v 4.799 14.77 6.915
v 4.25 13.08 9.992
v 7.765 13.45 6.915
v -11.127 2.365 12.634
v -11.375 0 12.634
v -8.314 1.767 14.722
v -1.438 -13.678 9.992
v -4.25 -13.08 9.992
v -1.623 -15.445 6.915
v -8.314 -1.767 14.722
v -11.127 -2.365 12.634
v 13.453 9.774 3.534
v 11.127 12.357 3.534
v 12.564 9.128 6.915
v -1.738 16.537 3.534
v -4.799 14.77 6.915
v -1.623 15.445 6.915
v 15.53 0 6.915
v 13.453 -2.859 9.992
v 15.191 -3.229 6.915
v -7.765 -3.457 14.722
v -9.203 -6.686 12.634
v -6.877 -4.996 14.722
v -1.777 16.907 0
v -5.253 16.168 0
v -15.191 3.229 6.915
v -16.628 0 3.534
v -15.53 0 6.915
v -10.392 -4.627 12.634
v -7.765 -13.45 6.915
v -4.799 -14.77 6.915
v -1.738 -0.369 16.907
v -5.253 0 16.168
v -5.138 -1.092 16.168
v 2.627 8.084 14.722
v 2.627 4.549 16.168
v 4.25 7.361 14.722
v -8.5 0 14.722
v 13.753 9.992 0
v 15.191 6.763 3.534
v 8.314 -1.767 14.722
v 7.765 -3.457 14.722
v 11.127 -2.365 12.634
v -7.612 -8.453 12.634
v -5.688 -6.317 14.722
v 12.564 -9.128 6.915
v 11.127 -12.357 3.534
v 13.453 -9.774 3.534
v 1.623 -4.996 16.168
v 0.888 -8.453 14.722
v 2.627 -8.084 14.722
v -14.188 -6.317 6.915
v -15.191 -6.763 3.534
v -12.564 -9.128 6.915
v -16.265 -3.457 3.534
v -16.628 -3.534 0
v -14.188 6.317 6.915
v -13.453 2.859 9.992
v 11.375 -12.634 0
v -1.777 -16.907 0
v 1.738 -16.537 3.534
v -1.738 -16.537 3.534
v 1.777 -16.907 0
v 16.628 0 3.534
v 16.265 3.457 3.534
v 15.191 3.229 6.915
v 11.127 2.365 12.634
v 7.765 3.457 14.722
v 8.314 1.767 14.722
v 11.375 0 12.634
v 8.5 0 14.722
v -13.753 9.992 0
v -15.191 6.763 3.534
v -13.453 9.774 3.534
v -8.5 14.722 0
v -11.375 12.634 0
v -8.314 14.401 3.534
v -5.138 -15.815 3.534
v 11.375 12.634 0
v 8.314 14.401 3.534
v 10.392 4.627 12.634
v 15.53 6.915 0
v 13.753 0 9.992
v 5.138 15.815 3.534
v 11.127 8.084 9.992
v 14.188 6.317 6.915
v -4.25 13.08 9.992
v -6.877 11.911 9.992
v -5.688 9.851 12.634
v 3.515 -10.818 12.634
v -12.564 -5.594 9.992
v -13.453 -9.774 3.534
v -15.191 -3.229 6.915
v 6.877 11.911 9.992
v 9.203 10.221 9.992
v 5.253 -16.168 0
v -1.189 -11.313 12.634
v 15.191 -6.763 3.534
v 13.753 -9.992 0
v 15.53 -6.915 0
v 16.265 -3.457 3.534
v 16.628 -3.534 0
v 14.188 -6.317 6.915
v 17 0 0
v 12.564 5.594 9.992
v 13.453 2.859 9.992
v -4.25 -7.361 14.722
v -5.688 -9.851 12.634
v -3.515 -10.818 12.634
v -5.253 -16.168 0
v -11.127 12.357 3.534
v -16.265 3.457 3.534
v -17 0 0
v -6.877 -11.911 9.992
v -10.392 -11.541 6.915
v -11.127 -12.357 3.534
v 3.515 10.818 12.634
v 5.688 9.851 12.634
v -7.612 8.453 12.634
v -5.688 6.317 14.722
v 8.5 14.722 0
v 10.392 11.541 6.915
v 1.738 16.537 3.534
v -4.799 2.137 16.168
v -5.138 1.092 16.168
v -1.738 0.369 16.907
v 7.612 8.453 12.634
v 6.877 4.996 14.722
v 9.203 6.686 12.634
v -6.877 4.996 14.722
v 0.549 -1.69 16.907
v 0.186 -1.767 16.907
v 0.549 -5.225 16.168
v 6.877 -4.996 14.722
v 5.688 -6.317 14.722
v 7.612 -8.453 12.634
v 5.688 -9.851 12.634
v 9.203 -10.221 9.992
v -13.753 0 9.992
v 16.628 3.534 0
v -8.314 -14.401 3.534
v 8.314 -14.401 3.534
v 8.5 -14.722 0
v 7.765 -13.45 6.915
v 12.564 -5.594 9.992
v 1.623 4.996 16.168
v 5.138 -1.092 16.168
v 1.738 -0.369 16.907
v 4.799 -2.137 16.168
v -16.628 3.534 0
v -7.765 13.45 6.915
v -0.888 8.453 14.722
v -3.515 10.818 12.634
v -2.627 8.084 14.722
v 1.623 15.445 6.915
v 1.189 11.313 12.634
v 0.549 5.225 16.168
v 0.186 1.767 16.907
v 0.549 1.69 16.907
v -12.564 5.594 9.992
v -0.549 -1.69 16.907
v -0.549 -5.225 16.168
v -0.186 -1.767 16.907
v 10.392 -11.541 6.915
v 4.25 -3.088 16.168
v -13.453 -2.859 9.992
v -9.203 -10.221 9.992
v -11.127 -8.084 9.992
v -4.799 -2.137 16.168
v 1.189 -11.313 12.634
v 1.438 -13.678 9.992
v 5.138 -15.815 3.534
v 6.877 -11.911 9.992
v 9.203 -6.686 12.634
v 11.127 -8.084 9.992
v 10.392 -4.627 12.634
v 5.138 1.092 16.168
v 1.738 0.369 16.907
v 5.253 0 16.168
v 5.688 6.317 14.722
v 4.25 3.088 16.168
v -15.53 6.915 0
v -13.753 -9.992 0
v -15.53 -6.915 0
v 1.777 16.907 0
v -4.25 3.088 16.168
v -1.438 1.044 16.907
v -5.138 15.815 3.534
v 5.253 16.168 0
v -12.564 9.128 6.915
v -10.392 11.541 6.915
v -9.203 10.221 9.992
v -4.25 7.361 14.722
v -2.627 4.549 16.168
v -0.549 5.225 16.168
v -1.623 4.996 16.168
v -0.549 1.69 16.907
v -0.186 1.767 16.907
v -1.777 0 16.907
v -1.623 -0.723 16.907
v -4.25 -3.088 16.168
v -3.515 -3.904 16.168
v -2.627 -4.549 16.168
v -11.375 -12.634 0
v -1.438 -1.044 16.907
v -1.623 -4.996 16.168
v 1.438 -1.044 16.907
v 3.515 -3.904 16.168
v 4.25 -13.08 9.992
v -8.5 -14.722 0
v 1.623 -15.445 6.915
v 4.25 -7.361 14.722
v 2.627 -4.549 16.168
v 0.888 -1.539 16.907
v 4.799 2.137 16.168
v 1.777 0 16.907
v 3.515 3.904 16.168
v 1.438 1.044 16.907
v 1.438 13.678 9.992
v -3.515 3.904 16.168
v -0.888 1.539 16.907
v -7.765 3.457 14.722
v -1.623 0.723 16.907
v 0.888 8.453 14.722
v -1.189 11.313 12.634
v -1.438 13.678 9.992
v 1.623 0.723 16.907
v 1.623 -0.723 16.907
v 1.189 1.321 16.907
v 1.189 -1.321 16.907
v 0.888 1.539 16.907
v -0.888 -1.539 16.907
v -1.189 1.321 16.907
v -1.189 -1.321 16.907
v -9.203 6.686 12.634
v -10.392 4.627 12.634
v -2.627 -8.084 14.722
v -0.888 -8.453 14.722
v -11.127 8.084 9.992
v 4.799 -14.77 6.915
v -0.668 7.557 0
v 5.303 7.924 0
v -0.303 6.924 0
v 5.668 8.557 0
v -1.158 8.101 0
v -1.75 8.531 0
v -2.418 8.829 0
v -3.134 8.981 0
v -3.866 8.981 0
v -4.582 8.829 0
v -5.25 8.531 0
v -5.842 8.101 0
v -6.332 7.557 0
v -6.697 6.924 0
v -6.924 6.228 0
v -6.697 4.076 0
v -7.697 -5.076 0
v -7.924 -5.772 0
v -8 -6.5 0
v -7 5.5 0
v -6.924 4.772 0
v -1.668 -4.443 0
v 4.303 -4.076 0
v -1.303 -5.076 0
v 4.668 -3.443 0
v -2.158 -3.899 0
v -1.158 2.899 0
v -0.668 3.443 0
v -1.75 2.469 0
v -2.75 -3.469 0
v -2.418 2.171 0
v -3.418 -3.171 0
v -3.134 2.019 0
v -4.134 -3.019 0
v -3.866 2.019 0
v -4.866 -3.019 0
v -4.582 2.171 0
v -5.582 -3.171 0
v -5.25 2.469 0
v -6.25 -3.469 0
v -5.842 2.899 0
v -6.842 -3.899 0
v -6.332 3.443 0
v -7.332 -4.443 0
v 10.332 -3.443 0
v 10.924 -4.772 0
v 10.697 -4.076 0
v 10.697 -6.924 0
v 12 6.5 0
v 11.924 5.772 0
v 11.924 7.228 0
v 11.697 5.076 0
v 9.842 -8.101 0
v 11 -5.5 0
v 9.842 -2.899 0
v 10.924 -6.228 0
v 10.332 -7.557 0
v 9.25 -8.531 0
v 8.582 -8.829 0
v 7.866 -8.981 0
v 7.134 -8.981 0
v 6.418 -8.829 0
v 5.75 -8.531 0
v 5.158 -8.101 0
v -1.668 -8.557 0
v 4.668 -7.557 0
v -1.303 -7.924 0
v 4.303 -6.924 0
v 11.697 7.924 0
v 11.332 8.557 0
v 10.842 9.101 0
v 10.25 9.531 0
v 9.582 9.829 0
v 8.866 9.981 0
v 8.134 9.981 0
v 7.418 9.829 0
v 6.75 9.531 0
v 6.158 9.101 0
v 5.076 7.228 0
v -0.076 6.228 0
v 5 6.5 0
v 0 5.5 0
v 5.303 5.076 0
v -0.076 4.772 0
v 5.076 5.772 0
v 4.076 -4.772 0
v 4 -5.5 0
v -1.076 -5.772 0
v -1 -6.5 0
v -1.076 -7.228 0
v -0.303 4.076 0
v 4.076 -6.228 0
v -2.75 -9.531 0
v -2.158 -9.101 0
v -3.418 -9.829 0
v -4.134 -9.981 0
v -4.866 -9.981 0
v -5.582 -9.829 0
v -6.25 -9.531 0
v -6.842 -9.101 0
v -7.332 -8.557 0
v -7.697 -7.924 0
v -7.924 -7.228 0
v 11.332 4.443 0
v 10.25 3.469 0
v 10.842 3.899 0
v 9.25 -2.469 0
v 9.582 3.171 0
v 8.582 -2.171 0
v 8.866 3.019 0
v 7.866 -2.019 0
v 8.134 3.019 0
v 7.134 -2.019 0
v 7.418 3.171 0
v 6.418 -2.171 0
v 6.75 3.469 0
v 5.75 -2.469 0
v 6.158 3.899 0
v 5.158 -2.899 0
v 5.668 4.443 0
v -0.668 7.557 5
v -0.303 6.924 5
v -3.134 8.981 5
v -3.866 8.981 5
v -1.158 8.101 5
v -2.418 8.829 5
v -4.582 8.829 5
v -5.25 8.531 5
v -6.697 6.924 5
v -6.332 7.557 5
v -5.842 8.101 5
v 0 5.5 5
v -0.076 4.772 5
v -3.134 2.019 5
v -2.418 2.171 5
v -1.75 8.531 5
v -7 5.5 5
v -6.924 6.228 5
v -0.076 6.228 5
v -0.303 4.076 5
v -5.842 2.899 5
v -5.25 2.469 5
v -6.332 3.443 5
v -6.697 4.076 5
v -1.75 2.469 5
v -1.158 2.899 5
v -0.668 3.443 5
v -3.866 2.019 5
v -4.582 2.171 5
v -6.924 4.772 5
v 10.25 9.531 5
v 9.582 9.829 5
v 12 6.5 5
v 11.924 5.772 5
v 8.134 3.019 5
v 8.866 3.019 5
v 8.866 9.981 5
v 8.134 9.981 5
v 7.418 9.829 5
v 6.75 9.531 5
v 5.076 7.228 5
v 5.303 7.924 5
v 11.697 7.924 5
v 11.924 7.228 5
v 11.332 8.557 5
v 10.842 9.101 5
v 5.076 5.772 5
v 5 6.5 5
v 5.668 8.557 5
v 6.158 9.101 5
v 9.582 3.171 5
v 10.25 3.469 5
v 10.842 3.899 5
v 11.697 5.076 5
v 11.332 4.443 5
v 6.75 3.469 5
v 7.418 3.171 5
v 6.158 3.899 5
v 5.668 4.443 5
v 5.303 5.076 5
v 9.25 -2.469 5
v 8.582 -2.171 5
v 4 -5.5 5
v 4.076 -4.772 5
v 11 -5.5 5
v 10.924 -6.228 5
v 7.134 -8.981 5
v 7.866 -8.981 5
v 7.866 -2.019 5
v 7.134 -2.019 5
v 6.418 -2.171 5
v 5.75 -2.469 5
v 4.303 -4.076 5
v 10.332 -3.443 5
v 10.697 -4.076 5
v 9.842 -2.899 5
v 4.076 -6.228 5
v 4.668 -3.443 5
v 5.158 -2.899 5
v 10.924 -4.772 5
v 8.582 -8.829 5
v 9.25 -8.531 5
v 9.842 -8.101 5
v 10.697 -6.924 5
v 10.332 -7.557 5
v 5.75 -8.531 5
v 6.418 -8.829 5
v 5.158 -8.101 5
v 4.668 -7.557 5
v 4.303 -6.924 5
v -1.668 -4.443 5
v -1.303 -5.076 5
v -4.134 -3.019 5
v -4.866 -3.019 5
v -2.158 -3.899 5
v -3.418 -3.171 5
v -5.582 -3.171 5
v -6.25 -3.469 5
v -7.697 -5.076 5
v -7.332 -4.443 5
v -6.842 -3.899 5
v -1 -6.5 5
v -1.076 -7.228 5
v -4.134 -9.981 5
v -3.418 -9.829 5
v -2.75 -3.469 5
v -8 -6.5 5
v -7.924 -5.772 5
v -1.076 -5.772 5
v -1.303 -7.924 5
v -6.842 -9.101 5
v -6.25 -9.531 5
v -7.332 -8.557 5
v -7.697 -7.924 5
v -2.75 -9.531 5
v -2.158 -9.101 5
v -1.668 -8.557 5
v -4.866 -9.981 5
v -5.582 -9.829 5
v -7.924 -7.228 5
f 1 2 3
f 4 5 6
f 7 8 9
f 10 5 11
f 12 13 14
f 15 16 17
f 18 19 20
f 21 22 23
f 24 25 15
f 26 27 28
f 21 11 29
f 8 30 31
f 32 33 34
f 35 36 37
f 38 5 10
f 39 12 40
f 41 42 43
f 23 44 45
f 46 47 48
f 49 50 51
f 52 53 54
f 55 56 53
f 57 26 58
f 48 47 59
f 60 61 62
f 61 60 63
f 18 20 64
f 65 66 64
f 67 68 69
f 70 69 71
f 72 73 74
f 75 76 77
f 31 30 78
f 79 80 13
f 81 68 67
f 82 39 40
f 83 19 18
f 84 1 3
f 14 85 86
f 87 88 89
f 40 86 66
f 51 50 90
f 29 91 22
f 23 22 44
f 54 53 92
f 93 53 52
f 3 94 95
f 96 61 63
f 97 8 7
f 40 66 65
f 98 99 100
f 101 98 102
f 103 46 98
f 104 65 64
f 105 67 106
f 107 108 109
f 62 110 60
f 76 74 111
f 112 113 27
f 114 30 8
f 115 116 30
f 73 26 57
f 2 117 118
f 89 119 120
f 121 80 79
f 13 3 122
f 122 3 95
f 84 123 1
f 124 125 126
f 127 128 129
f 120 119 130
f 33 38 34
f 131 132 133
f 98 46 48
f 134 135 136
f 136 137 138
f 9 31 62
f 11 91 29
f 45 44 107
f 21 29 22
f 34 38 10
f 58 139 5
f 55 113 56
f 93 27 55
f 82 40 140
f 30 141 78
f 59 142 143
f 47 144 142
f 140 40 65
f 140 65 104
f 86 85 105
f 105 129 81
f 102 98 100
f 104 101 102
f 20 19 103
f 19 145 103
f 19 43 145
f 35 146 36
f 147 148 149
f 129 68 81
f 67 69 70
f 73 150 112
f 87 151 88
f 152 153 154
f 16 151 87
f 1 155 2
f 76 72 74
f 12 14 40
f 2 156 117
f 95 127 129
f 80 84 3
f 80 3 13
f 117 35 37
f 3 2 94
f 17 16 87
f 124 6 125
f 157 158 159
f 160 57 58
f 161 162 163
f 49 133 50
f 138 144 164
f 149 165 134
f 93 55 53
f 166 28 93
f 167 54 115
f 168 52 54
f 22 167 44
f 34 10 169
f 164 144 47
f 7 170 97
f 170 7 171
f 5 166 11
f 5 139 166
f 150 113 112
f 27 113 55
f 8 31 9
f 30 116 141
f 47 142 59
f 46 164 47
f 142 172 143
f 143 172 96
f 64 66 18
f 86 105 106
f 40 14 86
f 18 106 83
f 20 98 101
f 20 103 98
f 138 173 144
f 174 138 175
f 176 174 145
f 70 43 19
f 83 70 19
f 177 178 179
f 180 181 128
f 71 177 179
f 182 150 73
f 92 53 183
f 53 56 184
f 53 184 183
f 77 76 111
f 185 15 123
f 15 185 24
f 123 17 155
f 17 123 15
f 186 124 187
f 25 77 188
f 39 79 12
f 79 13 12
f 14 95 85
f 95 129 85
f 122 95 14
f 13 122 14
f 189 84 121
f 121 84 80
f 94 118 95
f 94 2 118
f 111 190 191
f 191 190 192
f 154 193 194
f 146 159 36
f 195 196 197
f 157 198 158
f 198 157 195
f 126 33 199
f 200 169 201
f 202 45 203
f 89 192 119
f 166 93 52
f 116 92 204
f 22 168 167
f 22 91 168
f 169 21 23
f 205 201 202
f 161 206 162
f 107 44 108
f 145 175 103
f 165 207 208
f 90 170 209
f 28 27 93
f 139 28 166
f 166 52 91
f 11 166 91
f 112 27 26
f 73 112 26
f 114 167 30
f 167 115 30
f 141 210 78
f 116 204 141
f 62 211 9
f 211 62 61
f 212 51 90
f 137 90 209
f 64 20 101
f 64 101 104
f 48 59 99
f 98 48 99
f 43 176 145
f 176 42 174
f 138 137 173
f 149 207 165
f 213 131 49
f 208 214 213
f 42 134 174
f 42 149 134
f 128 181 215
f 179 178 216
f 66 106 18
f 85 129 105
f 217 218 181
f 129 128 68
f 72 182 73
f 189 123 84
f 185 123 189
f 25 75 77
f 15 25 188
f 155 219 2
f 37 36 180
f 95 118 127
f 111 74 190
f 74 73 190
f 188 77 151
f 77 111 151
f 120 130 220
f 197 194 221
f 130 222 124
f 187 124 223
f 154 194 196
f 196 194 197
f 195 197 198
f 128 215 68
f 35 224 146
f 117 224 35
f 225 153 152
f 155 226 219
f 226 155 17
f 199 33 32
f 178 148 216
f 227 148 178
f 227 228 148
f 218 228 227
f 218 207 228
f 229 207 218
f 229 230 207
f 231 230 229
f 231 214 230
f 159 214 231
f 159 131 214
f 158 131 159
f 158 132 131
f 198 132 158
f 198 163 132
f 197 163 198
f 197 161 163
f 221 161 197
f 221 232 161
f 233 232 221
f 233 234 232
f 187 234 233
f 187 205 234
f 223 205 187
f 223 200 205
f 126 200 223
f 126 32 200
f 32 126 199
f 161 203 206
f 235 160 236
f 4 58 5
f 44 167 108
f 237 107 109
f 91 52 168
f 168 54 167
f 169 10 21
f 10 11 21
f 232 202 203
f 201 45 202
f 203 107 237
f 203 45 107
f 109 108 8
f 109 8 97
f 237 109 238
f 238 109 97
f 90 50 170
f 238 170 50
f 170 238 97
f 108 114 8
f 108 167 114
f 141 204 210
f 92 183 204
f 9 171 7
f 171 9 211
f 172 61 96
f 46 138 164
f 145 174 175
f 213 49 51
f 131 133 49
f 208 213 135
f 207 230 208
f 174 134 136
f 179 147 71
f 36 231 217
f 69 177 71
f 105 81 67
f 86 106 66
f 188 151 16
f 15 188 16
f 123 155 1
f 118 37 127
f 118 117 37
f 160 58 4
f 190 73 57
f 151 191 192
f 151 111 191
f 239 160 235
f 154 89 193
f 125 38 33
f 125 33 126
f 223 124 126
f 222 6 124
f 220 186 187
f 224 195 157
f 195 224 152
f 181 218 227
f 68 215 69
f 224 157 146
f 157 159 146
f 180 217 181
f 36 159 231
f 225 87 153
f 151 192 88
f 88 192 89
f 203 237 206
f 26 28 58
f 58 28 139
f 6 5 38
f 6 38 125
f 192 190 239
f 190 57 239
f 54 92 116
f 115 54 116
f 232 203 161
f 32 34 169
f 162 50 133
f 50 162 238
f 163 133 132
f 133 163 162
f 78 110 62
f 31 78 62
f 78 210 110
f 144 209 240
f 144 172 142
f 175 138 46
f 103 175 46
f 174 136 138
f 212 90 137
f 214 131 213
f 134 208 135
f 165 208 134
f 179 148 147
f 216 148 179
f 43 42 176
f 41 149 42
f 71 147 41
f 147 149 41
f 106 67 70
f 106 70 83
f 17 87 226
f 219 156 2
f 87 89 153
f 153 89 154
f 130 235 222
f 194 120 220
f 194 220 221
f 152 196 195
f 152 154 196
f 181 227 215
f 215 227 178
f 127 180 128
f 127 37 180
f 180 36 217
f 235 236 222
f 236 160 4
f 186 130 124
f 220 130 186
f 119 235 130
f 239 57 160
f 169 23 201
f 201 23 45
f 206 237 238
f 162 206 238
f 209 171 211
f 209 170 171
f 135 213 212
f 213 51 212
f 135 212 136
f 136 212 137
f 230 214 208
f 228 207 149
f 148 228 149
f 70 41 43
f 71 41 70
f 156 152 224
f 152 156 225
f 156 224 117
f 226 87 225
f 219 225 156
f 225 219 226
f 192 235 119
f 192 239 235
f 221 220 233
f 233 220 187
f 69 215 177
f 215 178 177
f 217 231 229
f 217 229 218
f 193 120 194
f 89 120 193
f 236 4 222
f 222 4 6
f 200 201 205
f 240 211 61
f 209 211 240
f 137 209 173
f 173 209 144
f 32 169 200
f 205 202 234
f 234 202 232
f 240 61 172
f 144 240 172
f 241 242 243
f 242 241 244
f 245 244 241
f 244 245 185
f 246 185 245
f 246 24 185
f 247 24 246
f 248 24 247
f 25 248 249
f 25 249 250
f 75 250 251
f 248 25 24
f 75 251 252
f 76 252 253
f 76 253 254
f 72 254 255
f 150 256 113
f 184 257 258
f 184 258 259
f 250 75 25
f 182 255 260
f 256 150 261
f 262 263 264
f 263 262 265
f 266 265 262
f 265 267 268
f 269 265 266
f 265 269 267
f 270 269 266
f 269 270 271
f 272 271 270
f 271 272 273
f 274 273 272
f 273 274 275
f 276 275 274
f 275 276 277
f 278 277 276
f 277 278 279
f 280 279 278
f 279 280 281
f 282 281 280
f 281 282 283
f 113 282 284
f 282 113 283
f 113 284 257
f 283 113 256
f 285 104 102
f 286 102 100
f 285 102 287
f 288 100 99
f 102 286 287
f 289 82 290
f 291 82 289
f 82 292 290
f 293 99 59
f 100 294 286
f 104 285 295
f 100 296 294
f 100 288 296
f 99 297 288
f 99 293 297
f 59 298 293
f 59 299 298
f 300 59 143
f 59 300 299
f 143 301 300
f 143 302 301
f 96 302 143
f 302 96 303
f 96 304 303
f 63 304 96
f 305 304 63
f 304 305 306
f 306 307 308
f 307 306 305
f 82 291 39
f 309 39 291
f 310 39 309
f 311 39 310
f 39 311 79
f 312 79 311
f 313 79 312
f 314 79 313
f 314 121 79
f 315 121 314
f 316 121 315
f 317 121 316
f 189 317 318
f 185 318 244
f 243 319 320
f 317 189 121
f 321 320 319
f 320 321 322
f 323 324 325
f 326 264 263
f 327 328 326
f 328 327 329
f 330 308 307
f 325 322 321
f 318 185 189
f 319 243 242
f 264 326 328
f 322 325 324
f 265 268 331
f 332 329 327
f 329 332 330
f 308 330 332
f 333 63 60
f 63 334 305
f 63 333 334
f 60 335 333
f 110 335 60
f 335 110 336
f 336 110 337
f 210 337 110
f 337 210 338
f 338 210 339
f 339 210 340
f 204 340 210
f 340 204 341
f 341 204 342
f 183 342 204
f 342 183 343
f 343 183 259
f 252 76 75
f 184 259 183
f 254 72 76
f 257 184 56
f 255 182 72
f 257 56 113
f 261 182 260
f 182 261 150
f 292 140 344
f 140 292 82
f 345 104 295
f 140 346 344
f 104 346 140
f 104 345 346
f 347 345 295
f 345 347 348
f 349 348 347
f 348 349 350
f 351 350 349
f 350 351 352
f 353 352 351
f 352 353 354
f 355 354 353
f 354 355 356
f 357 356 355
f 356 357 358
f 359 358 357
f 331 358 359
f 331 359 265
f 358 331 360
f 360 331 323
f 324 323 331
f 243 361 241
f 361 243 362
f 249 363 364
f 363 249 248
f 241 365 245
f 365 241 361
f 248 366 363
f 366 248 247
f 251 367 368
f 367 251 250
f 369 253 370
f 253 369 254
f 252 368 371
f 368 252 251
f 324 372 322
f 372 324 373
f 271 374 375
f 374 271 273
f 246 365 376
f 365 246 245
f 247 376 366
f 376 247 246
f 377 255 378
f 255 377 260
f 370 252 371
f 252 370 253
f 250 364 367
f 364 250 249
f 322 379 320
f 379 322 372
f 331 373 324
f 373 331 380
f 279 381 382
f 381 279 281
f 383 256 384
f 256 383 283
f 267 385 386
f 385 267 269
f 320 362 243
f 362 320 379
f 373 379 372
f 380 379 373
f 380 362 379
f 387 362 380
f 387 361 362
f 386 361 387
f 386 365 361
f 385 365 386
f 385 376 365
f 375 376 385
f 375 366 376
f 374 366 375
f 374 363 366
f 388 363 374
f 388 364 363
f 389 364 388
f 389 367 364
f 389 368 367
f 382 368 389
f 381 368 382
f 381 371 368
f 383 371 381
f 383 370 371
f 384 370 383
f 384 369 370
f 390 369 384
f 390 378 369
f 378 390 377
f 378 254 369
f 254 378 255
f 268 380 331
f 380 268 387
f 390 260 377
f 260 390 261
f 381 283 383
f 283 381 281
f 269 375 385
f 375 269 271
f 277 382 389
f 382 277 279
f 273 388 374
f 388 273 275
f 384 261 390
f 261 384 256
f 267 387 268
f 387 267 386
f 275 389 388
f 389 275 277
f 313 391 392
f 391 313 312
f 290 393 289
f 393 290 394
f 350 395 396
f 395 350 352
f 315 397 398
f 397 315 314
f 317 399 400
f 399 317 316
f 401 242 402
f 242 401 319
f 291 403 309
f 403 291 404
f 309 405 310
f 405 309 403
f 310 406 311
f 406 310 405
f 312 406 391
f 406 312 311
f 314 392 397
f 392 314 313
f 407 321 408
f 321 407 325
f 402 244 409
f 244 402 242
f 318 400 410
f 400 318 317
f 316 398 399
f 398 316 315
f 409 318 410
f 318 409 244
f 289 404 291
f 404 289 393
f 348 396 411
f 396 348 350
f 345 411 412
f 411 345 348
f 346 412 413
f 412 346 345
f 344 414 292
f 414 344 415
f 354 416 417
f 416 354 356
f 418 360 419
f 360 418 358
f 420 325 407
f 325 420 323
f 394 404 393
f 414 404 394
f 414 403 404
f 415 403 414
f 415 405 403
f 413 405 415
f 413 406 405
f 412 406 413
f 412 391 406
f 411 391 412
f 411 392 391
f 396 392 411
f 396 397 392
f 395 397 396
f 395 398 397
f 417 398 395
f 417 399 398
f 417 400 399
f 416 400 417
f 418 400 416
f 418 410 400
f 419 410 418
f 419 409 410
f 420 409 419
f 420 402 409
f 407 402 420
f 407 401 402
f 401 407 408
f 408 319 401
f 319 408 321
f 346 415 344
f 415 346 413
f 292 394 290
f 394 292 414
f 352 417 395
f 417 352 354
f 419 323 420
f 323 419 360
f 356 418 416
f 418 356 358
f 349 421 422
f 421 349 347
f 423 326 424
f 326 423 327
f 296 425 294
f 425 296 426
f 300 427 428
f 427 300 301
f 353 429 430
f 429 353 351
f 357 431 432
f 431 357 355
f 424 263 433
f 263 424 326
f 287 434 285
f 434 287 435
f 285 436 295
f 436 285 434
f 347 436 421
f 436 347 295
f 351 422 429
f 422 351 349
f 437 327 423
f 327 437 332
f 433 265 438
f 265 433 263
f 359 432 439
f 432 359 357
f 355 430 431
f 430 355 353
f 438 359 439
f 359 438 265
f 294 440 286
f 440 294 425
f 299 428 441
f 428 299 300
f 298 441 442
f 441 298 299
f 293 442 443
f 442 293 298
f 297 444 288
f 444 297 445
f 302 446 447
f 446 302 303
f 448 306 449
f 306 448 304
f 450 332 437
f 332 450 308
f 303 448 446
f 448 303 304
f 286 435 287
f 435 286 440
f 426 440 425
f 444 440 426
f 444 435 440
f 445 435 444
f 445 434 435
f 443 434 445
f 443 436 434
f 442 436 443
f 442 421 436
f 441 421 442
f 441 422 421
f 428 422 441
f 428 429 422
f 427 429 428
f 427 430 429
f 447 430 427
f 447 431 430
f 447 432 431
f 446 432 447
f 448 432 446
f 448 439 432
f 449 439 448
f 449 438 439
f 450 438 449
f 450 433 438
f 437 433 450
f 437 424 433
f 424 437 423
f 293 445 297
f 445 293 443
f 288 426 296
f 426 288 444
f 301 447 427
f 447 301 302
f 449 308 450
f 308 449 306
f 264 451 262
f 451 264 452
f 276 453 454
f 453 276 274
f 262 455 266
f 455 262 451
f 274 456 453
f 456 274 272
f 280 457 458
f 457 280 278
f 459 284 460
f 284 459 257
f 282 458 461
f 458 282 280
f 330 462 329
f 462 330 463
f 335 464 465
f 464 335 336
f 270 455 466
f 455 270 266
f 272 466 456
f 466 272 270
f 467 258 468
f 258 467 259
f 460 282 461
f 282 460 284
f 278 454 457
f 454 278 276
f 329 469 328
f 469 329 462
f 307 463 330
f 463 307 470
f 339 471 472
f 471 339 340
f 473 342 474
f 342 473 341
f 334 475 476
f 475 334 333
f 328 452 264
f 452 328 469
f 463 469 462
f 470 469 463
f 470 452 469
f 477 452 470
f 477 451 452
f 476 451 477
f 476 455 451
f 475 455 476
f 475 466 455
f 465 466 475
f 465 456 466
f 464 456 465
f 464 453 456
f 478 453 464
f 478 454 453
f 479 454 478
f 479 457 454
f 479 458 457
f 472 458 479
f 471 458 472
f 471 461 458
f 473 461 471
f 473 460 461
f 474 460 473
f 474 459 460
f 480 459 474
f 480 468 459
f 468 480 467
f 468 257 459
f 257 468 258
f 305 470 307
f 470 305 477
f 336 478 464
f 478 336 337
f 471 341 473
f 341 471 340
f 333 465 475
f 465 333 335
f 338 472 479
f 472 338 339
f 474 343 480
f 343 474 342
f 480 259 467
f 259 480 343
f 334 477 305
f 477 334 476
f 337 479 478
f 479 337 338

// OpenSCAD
// EMAX Nighthawk 280 Leg Replacements (Gloves)
// Craig J Perry, Started on 31st Jan 2015
//
// All dimensions are in mm.
//
// These gloves clip onto the ends of the arms,
// or the "hands" - where the motors are mounted.
//
//         North
//       __________
//      |          |
//      | a      b |
// West |          | East
//      | d      c |
//      |          |
//      |         /
//       \       /
//    
//         South
//
//           Top
//        ___________
// Front |___________| Rear
//         ||   ||
//    
//           Back
//

$fn = 30;
function pythagoras(a,b) = sqrt(a*a + b*b);

west_to_east     =  34;
north_to_south   =  34;
top_to_bottom    =   4;
screw_cap_height =   3;
screw_cap_radius =   3;
hole_diameter    = 2.5;
west_to_a        =  10;
north_to_a       =   8;
west_to_b        =  22;
north_to_b       =   7;
west_to_c        =  21;
north_to_c       =  19;
west_to_d        =   9;
north_to_d       =  20;

glove_thickness = top_to_bottom + 2;

corner_to_centre = pythagoras(west_to_east/2, north_to_south/2);

module ScrewCapHole(west_offset, north_offset)
{
    translate([(-west_to_east/2)+west_offset+screw_cap_radius+0.5,(north_to_south/2)-north_offset-screw_cap_radius-0.5,-1])
    cylinder(h=screw_cap_height+3, r=screw_cap_radius+0.5);
}

module SphericalGlove()
{
    difference() {
        sphere(r=west_to_east/2);
        
        translate([0,0,-corner_to_centre/2])
        cube([corner_to_centre*2,corner_to_centre*2,corner_to_centre], center=true);
        
        ScrewCapHole(west_to_a, north_to_a);
        ScrewCapHole(west_to_b, north_to_b);
        ScrewCapHole(west_to_c, north_to_c);
        ScrewCapHole(west_to_d, north_to_d);
    }
}

SphericalGlove();
